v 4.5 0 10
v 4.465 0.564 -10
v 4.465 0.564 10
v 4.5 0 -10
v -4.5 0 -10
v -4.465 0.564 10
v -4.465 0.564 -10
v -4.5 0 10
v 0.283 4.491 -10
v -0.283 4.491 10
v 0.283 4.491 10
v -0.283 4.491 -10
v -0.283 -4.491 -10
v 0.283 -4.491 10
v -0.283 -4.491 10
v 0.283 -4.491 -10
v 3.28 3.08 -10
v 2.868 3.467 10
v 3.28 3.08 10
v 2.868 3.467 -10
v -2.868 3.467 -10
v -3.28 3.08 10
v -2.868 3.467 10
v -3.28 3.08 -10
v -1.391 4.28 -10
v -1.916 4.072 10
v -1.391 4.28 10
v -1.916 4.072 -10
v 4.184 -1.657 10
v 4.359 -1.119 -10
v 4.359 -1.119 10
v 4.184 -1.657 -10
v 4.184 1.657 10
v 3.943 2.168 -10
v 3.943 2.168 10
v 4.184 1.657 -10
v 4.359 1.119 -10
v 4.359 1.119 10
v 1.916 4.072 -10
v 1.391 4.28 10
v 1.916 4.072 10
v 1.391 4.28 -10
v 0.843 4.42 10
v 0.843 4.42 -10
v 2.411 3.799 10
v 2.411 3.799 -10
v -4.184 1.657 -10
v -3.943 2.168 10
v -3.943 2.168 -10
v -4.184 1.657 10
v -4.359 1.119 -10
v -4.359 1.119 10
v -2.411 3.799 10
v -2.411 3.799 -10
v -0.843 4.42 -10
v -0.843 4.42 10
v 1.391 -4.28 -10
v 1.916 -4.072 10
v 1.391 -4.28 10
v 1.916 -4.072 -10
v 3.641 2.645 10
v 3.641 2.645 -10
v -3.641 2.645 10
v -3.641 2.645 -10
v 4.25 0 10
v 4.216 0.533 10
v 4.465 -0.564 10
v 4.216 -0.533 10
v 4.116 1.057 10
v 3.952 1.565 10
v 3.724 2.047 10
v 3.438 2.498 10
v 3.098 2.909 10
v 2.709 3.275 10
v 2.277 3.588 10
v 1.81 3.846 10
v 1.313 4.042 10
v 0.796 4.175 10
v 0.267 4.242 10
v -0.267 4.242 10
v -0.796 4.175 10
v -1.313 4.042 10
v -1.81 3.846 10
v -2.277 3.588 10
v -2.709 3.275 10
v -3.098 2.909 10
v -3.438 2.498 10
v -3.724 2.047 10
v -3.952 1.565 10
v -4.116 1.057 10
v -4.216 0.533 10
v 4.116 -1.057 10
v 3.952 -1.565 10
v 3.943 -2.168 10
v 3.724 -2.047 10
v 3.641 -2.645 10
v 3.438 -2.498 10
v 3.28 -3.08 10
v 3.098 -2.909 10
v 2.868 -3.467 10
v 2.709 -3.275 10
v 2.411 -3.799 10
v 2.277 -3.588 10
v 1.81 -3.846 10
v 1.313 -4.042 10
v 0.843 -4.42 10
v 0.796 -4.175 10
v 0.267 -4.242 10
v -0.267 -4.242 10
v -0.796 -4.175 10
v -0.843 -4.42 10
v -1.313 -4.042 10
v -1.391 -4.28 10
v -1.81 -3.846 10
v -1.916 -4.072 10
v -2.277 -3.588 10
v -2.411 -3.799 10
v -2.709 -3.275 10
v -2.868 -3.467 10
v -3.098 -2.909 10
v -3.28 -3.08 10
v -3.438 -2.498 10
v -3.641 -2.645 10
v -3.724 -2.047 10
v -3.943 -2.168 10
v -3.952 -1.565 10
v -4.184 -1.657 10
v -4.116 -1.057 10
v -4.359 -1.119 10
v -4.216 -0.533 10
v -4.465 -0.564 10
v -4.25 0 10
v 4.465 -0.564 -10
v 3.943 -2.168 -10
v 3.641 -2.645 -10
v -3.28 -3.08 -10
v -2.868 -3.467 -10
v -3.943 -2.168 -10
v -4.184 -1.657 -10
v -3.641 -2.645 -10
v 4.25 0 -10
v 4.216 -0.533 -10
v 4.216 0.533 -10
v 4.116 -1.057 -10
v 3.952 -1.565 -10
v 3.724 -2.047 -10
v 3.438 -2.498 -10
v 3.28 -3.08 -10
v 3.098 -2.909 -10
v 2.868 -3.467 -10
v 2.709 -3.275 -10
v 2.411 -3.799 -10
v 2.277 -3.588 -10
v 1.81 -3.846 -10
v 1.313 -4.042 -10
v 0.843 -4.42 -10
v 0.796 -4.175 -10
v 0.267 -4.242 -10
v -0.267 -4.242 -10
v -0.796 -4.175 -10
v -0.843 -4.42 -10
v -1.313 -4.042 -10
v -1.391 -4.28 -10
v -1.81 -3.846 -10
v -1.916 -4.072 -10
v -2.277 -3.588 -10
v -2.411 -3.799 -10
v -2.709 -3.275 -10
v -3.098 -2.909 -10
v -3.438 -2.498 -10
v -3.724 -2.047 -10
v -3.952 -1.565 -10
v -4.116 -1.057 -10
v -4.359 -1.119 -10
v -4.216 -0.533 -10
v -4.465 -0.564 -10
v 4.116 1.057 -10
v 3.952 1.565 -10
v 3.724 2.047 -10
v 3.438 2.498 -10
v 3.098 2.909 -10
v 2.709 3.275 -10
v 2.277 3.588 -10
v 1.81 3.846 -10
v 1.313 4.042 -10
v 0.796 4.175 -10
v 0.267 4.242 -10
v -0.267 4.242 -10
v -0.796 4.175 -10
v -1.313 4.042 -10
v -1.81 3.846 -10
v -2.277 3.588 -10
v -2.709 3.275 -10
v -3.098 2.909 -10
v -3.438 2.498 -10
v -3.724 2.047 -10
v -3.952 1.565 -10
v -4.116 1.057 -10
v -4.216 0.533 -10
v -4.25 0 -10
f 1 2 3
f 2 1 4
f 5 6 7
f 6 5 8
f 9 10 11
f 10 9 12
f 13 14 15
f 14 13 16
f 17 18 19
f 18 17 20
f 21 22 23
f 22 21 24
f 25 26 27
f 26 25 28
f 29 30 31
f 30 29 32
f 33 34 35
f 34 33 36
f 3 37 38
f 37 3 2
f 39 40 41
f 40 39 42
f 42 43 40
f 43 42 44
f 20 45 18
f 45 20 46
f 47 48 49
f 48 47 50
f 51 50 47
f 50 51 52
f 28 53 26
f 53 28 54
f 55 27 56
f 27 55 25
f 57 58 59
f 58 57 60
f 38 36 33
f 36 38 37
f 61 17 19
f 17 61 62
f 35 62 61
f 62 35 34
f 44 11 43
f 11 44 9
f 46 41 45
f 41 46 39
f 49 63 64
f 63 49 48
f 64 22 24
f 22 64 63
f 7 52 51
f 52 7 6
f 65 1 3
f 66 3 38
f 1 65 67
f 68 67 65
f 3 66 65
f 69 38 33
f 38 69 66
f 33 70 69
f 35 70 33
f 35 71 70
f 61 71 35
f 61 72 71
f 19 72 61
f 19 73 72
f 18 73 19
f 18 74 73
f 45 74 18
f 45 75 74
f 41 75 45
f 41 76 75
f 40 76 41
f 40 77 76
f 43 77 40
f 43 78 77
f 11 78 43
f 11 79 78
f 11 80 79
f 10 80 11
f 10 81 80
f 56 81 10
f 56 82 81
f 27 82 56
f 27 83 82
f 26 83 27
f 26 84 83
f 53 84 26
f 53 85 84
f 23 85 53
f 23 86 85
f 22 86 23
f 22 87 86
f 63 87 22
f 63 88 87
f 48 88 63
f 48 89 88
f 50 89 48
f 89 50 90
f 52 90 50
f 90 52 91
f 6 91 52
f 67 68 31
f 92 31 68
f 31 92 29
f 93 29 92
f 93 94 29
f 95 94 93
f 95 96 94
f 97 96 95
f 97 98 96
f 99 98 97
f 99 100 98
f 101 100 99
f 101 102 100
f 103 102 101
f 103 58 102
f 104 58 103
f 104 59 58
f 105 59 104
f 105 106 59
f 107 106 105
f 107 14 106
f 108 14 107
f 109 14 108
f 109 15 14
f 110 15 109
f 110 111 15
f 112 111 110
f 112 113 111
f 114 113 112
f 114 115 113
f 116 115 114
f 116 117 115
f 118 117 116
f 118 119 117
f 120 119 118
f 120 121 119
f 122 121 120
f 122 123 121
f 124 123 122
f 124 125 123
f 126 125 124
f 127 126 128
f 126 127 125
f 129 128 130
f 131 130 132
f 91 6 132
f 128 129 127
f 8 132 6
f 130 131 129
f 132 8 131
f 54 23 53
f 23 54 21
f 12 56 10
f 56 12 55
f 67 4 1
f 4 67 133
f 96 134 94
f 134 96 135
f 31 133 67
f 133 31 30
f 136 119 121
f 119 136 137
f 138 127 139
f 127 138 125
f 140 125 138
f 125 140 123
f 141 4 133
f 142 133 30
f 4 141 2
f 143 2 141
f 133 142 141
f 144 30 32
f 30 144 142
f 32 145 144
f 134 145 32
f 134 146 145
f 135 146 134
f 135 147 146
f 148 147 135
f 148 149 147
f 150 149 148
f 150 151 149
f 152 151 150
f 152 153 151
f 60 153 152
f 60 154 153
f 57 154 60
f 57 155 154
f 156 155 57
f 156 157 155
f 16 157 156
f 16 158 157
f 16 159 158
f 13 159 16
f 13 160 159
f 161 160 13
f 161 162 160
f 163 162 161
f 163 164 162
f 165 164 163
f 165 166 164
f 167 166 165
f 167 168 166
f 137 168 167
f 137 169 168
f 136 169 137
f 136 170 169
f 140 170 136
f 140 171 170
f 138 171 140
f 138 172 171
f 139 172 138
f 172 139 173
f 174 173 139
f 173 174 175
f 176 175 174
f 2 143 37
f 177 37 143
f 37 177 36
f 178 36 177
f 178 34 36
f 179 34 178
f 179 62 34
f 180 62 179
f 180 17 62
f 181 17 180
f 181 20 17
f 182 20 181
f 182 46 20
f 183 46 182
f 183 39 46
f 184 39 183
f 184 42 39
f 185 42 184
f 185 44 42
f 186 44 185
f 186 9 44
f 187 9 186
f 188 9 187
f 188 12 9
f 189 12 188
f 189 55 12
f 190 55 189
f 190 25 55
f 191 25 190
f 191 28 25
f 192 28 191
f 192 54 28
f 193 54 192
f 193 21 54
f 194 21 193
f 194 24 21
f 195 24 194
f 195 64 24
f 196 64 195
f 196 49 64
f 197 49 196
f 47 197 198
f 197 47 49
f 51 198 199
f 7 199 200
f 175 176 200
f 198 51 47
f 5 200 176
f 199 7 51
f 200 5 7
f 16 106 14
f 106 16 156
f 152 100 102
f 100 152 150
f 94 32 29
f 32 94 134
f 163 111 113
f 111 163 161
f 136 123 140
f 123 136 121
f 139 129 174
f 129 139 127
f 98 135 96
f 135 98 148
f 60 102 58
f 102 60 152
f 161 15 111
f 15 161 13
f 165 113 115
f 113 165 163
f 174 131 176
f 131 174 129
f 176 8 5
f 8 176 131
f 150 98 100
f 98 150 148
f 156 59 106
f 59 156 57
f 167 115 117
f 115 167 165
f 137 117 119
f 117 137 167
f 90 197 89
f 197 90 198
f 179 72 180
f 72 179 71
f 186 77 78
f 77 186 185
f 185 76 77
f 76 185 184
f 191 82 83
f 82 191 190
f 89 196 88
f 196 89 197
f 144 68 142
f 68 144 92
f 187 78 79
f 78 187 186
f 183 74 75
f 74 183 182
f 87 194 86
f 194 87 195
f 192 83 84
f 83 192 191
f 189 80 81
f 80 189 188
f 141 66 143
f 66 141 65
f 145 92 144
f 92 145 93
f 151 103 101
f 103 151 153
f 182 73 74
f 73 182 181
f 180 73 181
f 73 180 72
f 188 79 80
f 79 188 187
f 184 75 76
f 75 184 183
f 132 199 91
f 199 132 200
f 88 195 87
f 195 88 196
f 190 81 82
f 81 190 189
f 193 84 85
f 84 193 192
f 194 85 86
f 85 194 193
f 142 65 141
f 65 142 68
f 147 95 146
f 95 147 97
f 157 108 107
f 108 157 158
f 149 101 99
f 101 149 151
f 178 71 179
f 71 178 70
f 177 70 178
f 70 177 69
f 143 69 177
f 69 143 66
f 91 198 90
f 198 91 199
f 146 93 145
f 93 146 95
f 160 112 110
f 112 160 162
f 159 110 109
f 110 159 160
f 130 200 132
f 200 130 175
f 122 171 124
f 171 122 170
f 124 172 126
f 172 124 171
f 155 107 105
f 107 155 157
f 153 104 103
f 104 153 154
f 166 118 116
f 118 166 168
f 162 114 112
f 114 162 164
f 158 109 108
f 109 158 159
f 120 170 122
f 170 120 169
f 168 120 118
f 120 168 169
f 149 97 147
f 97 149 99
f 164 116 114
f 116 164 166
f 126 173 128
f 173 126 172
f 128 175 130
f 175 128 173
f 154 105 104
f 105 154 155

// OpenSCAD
$fn = 50;


difference() {
	union() {
		translate(v = [0, 0, -10.0000000000]) {
			cylinder(h = 20, r = 4.5000000000);
		}
	}
	union() {
		translate(v = [0, 0, -100.0000000000]) {
			cylinder(h = 200, r = 4.2500000000);
		}
	}
}
